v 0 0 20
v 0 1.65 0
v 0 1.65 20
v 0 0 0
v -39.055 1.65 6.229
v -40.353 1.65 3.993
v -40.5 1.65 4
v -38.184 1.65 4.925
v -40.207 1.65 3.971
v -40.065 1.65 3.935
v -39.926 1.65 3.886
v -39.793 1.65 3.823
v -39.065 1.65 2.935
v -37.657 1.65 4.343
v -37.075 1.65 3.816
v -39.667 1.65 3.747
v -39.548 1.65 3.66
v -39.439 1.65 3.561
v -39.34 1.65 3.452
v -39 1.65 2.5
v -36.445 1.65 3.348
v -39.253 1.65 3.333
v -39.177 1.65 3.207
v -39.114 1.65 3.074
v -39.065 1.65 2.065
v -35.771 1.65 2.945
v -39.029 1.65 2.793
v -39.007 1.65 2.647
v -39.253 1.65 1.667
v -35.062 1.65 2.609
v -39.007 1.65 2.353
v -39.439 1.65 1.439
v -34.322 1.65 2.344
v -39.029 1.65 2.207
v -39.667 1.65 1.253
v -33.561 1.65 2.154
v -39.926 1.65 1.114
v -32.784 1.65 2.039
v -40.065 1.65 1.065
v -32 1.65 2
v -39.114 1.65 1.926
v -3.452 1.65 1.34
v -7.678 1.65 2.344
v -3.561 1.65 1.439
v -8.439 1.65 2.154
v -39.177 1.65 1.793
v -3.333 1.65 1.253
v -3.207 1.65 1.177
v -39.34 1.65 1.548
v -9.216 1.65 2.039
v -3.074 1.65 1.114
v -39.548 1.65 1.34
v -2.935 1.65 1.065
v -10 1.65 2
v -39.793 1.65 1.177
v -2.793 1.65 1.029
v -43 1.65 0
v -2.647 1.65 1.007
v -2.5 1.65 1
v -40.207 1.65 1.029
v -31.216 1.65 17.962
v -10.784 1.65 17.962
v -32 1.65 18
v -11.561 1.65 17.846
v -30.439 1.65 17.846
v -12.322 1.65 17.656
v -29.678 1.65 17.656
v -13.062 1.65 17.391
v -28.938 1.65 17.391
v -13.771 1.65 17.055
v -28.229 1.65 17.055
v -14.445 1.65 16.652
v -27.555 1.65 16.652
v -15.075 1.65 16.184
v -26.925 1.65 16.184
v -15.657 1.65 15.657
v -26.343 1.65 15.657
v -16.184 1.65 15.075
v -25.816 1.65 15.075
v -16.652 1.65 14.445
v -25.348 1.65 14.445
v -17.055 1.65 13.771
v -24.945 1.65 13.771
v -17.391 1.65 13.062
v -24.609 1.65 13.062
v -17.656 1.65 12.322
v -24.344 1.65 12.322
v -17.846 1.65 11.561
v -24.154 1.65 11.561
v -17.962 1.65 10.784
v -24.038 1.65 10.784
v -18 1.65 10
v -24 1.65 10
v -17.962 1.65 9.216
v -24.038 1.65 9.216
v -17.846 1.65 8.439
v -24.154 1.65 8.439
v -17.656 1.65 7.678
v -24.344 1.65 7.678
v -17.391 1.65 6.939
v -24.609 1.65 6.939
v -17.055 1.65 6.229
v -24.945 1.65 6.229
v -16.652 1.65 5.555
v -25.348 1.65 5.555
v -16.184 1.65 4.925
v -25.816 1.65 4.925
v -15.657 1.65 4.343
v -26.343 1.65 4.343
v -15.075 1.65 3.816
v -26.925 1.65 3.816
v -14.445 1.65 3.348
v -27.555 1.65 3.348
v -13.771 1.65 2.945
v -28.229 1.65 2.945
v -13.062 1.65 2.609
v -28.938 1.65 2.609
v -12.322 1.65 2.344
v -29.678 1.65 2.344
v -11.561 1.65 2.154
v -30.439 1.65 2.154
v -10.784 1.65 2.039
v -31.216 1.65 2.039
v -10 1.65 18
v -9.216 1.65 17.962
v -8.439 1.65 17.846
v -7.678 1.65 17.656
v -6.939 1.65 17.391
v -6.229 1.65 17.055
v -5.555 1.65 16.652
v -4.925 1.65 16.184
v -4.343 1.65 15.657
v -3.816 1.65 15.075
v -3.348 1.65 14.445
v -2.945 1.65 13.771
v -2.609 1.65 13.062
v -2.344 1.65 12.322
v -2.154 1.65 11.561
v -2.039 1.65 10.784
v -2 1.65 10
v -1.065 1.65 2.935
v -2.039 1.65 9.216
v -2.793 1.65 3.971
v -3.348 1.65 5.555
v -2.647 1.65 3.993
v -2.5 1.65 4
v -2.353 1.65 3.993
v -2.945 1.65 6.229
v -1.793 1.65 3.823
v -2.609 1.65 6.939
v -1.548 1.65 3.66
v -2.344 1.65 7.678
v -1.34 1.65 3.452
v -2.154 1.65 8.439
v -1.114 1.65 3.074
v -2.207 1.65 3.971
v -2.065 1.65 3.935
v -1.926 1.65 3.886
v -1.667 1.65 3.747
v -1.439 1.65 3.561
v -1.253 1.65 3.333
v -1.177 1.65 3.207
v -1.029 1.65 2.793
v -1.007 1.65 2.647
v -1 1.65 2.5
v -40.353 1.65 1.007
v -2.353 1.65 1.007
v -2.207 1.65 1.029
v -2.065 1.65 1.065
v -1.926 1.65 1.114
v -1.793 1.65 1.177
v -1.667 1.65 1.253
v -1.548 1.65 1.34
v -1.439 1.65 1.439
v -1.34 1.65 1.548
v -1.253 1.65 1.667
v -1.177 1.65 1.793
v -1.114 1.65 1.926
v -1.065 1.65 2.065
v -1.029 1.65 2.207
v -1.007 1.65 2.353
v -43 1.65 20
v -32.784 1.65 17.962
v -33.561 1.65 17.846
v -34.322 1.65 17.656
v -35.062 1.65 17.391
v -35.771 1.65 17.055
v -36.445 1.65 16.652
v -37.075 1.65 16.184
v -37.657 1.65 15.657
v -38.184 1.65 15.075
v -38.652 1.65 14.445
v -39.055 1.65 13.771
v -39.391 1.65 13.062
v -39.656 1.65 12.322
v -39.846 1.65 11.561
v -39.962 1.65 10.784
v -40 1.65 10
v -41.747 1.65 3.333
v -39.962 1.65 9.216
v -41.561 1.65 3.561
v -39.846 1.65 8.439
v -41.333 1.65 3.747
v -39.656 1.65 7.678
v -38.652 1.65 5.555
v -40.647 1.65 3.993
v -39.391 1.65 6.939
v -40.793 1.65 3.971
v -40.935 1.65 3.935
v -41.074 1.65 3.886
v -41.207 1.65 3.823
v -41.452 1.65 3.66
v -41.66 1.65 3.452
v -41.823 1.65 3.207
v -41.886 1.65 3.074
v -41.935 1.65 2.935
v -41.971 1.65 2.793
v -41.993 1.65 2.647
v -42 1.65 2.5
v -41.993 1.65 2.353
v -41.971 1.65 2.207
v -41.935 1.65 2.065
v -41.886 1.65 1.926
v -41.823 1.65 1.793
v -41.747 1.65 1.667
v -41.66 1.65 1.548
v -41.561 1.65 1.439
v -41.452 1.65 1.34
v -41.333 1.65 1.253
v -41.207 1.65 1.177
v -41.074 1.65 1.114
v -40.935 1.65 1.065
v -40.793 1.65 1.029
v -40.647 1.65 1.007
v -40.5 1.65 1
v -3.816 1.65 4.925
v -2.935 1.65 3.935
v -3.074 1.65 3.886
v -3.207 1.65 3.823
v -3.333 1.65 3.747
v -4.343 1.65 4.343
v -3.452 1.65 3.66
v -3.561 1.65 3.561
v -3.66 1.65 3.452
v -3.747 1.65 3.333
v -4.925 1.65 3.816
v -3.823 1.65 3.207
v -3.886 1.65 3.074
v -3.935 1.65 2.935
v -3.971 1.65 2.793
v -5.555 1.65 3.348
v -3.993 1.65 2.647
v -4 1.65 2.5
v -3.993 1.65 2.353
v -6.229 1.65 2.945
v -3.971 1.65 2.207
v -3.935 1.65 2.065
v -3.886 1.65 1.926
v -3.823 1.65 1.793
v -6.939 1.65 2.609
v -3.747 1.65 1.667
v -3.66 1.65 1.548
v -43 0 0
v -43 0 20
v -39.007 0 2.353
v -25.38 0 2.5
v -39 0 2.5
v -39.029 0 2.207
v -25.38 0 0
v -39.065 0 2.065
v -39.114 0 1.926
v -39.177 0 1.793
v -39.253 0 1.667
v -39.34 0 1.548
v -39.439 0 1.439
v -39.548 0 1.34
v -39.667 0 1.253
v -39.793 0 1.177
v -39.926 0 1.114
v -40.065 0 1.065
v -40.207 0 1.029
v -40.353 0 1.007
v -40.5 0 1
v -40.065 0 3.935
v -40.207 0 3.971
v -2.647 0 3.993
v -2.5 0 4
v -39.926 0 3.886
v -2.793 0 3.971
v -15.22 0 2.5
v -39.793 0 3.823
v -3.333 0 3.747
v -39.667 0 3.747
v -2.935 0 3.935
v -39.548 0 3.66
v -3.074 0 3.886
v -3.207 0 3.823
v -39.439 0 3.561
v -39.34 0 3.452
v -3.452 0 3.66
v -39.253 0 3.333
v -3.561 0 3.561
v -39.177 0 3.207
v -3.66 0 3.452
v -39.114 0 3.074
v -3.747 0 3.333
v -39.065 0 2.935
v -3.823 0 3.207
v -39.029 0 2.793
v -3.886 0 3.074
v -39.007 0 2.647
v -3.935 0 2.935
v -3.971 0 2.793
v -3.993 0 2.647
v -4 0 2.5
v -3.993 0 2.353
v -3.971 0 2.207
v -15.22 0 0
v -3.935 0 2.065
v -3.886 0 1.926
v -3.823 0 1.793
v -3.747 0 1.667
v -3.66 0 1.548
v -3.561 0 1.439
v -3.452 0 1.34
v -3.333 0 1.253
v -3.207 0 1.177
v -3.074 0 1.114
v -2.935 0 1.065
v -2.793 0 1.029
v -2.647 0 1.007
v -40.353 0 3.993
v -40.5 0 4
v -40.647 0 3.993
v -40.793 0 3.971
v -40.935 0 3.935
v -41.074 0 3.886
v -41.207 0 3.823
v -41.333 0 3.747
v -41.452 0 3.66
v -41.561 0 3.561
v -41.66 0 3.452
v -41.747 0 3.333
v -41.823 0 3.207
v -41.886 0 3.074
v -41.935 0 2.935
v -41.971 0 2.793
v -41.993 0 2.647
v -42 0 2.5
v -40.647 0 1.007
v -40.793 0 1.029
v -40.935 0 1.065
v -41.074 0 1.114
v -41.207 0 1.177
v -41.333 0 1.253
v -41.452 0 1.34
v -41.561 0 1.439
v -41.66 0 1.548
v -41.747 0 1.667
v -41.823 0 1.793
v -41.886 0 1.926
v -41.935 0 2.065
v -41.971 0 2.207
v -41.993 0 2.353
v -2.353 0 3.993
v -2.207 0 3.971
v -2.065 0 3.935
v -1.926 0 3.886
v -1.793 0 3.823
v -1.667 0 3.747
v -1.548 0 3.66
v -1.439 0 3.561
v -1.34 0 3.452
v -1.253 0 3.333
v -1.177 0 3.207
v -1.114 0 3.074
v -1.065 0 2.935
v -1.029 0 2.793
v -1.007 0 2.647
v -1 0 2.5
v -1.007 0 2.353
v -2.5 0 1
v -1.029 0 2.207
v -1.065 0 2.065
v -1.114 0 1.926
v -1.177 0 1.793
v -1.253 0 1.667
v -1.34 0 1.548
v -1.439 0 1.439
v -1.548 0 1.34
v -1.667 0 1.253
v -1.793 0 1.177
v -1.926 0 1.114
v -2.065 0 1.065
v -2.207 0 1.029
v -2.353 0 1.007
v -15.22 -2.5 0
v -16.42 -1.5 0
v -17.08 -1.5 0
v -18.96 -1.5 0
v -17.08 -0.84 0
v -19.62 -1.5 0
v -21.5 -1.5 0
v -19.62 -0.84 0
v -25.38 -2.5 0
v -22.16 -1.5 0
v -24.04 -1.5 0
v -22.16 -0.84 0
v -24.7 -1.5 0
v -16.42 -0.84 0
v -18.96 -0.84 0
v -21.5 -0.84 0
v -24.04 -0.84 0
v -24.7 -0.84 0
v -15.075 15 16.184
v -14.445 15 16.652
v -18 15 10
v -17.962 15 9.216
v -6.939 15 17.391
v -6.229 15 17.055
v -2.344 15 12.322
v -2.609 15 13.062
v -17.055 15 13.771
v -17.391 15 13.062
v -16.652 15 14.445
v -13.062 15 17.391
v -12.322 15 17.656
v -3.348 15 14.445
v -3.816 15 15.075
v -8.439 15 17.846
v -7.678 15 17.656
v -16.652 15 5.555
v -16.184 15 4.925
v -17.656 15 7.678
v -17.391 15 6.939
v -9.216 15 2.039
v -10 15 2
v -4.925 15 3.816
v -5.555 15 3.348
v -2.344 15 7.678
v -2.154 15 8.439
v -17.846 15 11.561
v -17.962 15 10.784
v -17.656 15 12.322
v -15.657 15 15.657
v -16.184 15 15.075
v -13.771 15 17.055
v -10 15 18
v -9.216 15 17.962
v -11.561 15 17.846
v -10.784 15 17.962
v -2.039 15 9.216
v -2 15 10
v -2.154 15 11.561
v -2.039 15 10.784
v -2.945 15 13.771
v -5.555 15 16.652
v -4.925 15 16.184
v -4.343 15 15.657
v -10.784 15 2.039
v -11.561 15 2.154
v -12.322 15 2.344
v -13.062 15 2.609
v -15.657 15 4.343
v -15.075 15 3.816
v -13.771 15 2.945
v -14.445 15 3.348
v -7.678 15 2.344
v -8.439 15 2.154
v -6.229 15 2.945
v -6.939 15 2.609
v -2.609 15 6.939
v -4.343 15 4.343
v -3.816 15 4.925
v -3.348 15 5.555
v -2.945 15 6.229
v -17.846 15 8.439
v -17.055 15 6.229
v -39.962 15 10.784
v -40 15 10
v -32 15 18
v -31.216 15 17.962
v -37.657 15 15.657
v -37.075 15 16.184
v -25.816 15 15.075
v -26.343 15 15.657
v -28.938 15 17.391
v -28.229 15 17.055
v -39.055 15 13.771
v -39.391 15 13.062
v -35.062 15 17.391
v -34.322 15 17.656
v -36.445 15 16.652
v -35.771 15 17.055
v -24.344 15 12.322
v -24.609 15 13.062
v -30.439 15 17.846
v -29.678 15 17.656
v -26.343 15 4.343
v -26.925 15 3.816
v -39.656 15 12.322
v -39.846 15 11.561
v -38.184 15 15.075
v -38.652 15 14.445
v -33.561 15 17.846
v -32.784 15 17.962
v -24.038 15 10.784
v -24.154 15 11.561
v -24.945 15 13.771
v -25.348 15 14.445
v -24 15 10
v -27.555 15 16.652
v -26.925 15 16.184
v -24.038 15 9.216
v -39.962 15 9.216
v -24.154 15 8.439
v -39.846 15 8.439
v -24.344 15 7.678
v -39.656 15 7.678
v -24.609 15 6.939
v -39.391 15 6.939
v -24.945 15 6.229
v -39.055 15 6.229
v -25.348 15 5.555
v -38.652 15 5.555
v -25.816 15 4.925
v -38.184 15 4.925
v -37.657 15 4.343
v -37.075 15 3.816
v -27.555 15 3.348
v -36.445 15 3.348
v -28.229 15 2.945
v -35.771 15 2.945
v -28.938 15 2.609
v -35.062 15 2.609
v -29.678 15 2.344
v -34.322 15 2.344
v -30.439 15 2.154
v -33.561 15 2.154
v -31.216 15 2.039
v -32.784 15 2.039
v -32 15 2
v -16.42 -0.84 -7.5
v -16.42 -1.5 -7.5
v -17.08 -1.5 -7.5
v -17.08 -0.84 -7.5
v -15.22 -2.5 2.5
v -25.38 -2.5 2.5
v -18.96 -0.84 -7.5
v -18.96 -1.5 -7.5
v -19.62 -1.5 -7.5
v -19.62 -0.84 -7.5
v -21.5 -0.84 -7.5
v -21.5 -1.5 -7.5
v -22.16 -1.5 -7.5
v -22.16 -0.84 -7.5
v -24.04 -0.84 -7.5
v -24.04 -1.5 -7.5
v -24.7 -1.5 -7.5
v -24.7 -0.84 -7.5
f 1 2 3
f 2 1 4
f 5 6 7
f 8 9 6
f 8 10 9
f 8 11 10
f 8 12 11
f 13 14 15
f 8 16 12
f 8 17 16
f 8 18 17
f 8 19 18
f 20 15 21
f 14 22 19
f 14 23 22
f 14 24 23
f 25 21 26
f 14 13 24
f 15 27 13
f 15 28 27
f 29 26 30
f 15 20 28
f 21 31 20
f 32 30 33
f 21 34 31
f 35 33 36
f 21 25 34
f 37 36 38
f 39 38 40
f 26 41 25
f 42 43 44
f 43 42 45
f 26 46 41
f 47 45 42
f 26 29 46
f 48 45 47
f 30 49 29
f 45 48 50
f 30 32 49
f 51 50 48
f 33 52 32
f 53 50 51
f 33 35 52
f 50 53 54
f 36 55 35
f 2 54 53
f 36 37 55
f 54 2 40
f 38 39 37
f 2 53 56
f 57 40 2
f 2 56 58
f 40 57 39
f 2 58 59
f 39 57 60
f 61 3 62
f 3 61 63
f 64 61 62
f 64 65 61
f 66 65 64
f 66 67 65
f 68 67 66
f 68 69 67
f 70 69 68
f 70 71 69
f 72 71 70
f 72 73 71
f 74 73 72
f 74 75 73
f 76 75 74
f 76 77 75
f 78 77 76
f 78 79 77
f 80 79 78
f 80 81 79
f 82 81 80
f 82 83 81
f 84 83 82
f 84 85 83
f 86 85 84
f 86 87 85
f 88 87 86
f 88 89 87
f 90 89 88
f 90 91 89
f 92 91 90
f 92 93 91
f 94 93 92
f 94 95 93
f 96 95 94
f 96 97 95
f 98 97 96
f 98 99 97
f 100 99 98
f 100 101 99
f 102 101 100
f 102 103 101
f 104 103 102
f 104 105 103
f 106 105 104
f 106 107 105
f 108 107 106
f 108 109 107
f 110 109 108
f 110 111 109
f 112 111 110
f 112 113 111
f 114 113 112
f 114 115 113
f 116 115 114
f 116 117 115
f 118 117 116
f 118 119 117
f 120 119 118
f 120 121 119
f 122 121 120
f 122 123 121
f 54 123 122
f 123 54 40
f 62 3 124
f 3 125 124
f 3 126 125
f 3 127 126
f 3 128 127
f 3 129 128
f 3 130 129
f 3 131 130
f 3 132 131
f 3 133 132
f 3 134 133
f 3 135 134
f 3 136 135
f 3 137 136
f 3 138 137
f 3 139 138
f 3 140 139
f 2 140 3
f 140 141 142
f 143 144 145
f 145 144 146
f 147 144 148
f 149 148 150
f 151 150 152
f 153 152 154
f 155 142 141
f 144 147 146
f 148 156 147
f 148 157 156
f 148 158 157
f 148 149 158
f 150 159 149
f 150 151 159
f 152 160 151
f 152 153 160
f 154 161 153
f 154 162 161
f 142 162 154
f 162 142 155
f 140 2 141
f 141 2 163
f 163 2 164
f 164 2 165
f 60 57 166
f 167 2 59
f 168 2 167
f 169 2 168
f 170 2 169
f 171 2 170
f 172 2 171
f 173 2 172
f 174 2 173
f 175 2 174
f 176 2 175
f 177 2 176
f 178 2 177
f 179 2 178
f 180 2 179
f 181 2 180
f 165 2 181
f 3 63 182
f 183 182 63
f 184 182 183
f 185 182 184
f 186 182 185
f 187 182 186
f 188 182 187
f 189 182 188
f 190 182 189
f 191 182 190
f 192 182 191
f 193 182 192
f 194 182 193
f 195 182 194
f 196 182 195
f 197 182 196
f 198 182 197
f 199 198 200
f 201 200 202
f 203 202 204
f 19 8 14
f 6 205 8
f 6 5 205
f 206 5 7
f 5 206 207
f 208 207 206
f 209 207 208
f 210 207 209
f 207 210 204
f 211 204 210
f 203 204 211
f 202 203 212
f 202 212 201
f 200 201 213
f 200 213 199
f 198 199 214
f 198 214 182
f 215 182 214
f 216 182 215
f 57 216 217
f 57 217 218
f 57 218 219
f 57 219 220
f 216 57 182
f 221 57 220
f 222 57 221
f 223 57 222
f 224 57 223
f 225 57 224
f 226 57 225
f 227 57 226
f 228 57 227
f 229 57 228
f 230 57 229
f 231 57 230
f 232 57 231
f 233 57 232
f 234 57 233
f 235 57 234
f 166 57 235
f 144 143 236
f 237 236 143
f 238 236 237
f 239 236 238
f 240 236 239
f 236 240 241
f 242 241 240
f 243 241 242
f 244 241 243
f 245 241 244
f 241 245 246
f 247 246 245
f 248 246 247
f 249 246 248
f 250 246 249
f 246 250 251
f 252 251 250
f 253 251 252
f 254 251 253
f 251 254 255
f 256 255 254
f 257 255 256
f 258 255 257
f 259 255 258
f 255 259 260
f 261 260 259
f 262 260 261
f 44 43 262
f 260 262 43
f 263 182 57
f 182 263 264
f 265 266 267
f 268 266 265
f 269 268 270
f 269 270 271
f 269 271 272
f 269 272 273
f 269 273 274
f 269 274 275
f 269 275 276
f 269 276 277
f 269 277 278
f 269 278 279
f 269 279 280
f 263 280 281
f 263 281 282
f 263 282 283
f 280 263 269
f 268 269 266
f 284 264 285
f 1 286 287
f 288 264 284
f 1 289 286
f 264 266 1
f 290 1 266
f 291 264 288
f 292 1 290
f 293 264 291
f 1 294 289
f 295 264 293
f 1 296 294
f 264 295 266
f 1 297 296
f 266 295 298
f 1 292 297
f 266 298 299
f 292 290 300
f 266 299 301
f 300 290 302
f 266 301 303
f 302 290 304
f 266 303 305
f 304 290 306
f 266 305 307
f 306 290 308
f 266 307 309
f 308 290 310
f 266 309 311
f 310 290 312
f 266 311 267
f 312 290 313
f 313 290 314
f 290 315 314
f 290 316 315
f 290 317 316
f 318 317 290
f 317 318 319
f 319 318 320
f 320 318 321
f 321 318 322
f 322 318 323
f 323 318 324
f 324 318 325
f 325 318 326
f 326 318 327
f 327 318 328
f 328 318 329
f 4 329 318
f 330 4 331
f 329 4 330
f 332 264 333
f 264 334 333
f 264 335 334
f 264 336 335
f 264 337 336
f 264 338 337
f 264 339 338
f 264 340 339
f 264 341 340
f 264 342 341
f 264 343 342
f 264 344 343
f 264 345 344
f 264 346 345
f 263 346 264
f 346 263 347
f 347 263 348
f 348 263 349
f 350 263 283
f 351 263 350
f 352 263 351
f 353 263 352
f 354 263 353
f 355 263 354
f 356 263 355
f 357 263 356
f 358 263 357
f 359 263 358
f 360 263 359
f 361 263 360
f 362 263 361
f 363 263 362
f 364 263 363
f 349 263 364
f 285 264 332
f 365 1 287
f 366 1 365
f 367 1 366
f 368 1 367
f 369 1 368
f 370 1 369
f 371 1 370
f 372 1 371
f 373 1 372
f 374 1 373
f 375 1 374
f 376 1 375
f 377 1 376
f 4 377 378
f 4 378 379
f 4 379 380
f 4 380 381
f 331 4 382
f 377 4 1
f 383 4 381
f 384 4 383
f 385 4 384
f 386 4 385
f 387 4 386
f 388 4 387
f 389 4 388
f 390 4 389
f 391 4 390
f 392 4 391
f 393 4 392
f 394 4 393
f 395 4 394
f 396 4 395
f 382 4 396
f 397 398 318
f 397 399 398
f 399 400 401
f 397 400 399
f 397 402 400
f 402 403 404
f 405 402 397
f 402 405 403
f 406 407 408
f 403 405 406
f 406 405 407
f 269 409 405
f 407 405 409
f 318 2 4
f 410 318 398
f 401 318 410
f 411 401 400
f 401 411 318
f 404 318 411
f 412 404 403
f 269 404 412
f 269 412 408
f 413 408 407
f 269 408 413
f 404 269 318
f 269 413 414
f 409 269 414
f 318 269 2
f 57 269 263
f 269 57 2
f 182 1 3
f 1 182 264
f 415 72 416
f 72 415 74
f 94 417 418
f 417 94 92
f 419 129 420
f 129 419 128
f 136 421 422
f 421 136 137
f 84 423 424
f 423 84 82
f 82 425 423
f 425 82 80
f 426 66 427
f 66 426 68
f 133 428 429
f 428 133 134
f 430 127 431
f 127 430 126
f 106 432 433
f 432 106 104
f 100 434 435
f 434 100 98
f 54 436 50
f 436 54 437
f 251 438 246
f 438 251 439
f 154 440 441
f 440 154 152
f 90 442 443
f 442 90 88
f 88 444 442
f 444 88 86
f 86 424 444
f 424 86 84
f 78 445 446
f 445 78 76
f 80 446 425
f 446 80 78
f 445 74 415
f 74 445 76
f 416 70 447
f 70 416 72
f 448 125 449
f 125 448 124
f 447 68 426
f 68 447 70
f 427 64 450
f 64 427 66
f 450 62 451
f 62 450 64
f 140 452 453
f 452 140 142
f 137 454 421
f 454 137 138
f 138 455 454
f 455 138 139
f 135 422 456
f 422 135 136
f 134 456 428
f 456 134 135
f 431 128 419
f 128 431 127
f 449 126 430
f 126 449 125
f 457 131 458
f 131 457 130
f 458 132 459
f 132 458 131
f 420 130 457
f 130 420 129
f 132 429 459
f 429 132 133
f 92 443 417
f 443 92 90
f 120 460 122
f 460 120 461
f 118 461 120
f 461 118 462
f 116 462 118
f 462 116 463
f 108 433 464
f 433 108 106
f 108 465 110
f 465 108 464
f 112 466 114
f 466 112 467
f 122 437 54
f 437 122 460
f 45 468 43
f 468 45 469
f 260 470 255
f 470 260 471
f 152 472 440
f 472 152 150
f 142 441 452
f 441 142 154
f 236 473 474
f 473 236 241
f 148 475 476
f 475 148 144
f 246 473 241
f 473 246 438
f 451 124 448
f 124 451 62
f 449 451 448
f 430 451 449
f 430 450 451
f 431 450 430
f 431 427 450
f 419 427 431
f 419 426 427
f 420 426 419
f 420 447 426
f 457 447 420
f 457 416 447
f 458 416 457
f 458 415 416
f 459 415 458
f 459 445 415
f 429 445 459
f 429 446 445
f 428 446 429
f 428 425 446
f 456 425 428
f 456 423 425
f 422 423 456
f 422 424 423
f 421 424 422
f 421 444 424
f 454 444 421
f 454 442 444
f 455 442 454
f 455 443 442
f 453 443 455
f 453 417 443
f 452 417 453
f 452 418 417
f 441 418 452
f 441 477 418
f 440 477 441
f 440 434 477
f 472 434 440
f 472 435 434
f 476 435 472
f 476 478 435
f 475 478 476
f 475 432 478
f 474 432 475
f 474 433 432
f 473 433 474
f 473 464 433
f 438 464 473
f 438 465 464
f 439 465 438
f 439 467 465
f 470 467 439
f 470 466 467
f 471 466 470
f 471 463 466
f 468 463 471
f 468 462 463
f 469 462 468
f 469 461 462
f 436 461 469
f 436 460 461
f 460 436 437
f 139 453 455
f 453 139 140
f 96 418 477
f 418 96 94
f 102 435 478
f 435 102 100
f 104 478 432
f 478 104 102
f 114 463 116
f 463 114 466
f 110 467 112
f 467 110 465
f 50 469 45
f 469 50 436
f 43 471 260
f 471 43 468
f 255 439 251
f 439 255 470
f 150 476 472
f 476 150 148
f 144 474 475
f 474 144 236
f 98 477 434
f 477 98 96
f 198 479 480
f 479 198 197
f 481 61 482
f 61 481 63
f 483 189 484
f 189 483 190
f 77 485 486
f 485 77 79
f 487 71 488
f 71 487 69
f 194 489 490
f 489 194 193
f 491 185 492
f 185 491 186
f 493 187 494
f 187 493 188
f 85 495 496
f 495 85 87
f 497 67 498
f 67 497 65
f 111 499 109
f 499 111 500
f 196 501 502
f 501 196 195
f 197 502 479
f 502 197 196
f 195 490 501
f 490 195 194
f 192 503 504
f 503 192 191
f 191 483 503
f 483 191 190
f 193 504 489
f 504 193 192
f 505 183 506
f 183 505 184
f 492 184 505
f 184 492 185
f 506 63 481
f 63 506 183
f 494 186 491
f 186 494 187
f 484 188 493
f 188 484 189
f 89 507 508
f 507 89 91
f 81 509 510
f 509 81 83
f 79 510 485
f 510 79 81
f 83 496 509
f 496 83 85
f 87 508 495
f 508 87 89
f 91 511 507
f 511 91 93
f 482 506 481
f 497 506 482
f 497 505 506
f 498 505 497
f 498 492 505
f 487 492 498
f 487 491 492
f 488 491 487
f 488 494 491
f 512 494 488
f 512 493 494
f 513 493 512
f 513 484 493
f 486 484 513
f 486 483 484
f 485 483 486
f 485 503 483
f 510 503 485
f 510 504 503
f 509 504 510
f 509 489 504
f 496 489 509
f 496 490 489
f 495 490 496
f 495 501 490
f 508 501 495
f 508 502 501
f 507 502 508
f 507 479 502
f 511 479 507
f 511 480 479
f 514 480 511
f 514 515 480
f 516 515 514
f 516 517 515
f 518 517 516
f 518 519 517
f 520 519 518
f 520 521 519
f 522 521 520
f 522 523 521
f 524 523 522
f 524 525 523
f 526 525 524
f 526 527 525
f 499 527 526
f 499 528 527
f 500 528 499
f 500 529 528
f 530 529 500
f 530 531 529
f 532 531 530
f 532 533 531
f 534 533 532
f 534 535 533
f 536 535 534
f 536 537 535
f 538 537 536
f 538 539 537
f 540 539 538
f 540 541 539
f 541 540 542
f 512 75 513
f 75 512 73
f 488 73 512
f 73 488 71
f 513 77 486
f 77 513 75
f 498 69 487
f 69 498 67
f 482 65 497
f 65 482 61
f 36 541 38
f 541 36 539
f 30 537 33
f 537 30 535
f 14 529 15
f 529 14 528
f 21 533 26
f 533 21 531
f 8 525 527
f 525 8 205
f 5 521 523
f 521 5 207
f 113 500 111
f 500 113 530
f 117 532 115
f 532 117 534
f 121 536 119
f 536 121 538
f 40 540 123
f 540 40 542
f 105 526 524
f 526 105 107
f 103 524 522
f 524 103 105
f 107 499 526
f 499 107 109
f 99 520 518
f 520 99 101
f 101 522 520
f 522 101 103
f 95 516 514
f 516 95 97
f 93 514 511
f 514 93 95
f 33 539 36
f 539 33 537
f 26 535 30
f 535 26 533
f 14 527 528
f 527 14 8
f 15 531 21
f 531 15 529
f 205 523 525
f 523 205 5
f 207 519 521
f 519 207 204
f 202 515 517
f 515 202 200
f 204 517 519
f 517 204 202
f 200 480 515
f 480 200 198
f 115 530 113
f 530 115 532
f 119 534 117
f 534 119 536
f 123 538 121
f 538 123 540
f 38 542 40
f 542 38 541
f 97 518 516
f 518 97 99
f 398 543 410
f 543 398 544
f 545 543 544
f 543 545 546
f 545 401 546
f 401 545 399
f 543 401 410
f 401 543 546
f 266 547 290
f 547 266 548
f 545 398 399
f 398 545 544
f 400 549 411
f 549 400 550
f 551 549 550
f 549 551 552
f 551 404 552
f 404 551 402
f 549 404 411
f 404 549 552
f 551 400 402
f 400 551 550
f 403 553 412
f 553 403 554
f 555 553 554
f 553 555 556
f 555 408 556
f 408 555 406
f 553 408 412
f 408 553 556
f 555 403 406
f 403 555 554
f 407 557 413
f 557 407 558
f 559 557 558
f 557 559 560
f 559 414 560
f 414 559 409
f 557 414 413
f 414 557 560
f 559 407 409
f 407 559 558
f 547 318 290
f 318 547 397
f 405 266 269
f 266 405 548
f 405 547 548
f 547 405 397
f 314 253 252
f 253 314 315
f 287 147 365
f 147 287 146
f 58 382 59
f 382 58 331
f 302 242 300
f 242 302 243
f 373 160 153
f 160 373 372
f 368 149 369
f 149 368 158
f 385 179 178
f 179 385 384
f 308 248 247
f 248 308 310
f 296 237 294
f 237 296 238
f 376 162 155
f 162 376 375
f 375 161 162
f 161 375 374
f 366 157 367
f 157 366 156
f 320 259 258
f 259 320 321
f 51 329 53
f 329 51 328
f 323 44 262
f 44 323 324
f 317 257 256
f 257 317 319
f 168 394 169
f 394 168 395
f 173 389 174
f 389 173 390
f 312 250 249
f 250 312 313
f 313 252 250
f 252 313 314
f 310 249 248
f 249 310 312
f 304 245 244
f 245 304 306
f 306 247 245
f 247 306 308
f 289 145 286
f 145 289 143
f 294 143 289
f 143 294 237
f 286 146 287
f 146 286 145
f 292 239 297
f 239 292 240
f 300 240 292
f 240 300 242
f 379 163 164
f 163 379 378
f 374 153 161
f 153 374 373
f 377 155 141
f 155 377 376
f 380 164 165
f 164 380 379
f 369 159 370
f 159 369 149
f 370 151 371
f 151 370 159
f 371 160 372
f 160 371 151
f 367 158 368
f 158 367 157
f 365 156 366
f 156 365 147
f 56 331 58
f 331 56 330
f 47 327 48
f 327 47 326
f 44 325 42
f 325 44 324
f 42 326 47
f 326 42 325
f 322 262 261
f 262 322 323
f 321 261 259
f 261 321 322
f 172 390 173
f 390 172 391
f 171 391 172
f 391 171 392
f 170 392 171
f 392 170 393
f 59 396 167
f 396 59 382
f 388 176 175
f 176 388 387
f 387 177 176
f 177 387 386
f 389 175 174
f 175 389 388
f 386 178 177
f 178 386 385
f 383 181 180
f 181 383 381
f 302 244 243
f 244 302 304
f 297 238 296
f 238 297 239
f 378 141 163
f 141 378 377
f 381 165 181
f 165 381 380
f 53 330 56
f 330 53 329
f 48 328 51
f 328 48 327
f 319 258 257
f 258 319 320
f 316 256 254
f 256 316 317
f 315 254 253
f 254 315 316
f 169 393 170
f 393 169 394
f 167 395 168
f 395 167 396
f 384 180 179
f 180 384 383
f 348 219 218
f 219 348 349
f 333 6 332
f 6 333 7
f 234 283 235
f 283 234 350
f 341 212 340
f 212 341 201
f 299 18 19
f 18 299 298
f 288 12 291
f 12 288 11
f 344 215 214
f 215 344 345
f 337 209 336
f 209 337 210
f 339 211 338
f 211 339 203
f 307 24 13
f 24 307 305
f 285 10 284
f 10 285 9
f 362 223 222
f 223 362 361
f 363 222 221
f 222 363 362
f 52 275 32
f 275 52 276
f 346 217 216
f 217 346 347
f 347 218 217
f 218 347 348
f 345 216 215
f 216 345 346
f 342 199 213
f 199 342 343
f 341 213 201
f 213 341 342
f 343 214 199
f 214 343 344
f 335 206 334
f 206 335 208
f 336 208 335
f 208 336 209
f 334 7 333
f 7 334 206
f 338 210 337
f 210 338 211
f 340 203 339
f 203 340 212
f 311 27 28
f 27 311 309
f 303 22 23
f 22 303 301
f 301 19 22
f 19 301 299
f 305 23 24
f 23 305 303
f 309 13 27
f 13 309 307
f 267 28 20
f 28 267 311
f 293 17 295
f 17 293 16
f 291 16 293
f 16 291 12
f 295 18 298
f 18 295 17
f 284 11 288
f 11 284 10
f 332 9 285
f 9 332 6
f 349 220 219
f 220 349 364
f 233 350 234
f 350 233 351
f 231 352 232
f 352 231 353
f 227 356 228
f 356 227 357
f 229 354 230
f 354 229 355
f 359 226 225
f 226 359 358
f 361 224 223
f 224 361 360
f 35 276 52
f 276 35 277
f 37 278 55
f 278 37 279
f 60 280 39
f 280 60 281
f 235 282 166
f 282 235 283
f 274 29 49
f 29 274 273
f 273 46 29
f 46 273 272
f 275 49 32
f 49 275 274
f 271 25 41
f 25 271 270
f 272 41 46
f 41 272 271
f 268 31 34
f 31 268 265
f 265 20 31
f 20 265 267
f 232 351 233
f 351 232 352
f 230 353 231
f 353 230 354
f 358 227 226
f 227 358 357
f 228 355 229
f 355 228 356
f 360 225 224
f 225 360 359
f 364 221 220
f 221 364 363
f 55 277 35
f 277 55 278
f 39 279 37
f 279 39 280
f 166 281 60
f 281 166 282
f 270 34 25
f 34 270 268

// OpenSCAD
$fn = 64;

module solidBoard()
{
    pcbthickness = 1.65;
    cube([43,20,pcbthickness],false);
    
    {
     translate([10,10,pcbthickness])
     cylinder(h=15-pcbthickness,d=16);
     
     translate([32,10,pcbthickness])
     cylinder(h=15-pcbthickness,d=16);  
    } 
 }
    
module mountingHoles()
 {
    translate([2.5,2.5,-0.5])
    cylinder(h=3,d=3);
     
    translate([2.5+38,2.5,-0.5])
    cylinder(h=3,d=3);
     
 }
 
 module connectorPins()
 {
    rotate([90,0,0])
    translate([43*0.5-2.54*2,-1.5,-2.5])
    {
     cube([0.66,0.66,10],false);
     
     translate([2.54,0])
     cube([0.66,0.66,10],false);  
        
     translate([2.54*2,0])
     cube([0.66,0.66,10],false);
        
     translate([2.54*3,0])
     cube([0.66,0.66,10],false);
        
     translate([-1.2,-1,0])
     cube([2.54*4,2.5,2.5]);
    };
     
 }
 
 module ultrasonicSensor()
 {
    difference()
    {
      union()
      {
        solidBoard();
        connectorPins();
          
      } 
     
      union()
      {
        mountingHoles();  

      } 

     }
     
 }
 
 module sensorAssembly()
 {
    translate([43*0.5,0,0])
    rotate([90,0,180])
    ultrasonicSensor();
   
 }
 

 /*
 translate([0,35,0])
 sensorAssembly();
 
 translate([80,0,0])
 rotate([0,0,-65])
 sensorAssembly();

 translate([-80,0,0])
 rotate([0,0,65])
 sensorAssembly();

 translate([40,25,0])
 rotate([0,0,-35])
 sensorAssembly();

 translate([-40,25,0])
 rotate([0,0,35])
 sensorAssembly(); 
 */
rotate([90,0,180])
ultrasonicSensor();
